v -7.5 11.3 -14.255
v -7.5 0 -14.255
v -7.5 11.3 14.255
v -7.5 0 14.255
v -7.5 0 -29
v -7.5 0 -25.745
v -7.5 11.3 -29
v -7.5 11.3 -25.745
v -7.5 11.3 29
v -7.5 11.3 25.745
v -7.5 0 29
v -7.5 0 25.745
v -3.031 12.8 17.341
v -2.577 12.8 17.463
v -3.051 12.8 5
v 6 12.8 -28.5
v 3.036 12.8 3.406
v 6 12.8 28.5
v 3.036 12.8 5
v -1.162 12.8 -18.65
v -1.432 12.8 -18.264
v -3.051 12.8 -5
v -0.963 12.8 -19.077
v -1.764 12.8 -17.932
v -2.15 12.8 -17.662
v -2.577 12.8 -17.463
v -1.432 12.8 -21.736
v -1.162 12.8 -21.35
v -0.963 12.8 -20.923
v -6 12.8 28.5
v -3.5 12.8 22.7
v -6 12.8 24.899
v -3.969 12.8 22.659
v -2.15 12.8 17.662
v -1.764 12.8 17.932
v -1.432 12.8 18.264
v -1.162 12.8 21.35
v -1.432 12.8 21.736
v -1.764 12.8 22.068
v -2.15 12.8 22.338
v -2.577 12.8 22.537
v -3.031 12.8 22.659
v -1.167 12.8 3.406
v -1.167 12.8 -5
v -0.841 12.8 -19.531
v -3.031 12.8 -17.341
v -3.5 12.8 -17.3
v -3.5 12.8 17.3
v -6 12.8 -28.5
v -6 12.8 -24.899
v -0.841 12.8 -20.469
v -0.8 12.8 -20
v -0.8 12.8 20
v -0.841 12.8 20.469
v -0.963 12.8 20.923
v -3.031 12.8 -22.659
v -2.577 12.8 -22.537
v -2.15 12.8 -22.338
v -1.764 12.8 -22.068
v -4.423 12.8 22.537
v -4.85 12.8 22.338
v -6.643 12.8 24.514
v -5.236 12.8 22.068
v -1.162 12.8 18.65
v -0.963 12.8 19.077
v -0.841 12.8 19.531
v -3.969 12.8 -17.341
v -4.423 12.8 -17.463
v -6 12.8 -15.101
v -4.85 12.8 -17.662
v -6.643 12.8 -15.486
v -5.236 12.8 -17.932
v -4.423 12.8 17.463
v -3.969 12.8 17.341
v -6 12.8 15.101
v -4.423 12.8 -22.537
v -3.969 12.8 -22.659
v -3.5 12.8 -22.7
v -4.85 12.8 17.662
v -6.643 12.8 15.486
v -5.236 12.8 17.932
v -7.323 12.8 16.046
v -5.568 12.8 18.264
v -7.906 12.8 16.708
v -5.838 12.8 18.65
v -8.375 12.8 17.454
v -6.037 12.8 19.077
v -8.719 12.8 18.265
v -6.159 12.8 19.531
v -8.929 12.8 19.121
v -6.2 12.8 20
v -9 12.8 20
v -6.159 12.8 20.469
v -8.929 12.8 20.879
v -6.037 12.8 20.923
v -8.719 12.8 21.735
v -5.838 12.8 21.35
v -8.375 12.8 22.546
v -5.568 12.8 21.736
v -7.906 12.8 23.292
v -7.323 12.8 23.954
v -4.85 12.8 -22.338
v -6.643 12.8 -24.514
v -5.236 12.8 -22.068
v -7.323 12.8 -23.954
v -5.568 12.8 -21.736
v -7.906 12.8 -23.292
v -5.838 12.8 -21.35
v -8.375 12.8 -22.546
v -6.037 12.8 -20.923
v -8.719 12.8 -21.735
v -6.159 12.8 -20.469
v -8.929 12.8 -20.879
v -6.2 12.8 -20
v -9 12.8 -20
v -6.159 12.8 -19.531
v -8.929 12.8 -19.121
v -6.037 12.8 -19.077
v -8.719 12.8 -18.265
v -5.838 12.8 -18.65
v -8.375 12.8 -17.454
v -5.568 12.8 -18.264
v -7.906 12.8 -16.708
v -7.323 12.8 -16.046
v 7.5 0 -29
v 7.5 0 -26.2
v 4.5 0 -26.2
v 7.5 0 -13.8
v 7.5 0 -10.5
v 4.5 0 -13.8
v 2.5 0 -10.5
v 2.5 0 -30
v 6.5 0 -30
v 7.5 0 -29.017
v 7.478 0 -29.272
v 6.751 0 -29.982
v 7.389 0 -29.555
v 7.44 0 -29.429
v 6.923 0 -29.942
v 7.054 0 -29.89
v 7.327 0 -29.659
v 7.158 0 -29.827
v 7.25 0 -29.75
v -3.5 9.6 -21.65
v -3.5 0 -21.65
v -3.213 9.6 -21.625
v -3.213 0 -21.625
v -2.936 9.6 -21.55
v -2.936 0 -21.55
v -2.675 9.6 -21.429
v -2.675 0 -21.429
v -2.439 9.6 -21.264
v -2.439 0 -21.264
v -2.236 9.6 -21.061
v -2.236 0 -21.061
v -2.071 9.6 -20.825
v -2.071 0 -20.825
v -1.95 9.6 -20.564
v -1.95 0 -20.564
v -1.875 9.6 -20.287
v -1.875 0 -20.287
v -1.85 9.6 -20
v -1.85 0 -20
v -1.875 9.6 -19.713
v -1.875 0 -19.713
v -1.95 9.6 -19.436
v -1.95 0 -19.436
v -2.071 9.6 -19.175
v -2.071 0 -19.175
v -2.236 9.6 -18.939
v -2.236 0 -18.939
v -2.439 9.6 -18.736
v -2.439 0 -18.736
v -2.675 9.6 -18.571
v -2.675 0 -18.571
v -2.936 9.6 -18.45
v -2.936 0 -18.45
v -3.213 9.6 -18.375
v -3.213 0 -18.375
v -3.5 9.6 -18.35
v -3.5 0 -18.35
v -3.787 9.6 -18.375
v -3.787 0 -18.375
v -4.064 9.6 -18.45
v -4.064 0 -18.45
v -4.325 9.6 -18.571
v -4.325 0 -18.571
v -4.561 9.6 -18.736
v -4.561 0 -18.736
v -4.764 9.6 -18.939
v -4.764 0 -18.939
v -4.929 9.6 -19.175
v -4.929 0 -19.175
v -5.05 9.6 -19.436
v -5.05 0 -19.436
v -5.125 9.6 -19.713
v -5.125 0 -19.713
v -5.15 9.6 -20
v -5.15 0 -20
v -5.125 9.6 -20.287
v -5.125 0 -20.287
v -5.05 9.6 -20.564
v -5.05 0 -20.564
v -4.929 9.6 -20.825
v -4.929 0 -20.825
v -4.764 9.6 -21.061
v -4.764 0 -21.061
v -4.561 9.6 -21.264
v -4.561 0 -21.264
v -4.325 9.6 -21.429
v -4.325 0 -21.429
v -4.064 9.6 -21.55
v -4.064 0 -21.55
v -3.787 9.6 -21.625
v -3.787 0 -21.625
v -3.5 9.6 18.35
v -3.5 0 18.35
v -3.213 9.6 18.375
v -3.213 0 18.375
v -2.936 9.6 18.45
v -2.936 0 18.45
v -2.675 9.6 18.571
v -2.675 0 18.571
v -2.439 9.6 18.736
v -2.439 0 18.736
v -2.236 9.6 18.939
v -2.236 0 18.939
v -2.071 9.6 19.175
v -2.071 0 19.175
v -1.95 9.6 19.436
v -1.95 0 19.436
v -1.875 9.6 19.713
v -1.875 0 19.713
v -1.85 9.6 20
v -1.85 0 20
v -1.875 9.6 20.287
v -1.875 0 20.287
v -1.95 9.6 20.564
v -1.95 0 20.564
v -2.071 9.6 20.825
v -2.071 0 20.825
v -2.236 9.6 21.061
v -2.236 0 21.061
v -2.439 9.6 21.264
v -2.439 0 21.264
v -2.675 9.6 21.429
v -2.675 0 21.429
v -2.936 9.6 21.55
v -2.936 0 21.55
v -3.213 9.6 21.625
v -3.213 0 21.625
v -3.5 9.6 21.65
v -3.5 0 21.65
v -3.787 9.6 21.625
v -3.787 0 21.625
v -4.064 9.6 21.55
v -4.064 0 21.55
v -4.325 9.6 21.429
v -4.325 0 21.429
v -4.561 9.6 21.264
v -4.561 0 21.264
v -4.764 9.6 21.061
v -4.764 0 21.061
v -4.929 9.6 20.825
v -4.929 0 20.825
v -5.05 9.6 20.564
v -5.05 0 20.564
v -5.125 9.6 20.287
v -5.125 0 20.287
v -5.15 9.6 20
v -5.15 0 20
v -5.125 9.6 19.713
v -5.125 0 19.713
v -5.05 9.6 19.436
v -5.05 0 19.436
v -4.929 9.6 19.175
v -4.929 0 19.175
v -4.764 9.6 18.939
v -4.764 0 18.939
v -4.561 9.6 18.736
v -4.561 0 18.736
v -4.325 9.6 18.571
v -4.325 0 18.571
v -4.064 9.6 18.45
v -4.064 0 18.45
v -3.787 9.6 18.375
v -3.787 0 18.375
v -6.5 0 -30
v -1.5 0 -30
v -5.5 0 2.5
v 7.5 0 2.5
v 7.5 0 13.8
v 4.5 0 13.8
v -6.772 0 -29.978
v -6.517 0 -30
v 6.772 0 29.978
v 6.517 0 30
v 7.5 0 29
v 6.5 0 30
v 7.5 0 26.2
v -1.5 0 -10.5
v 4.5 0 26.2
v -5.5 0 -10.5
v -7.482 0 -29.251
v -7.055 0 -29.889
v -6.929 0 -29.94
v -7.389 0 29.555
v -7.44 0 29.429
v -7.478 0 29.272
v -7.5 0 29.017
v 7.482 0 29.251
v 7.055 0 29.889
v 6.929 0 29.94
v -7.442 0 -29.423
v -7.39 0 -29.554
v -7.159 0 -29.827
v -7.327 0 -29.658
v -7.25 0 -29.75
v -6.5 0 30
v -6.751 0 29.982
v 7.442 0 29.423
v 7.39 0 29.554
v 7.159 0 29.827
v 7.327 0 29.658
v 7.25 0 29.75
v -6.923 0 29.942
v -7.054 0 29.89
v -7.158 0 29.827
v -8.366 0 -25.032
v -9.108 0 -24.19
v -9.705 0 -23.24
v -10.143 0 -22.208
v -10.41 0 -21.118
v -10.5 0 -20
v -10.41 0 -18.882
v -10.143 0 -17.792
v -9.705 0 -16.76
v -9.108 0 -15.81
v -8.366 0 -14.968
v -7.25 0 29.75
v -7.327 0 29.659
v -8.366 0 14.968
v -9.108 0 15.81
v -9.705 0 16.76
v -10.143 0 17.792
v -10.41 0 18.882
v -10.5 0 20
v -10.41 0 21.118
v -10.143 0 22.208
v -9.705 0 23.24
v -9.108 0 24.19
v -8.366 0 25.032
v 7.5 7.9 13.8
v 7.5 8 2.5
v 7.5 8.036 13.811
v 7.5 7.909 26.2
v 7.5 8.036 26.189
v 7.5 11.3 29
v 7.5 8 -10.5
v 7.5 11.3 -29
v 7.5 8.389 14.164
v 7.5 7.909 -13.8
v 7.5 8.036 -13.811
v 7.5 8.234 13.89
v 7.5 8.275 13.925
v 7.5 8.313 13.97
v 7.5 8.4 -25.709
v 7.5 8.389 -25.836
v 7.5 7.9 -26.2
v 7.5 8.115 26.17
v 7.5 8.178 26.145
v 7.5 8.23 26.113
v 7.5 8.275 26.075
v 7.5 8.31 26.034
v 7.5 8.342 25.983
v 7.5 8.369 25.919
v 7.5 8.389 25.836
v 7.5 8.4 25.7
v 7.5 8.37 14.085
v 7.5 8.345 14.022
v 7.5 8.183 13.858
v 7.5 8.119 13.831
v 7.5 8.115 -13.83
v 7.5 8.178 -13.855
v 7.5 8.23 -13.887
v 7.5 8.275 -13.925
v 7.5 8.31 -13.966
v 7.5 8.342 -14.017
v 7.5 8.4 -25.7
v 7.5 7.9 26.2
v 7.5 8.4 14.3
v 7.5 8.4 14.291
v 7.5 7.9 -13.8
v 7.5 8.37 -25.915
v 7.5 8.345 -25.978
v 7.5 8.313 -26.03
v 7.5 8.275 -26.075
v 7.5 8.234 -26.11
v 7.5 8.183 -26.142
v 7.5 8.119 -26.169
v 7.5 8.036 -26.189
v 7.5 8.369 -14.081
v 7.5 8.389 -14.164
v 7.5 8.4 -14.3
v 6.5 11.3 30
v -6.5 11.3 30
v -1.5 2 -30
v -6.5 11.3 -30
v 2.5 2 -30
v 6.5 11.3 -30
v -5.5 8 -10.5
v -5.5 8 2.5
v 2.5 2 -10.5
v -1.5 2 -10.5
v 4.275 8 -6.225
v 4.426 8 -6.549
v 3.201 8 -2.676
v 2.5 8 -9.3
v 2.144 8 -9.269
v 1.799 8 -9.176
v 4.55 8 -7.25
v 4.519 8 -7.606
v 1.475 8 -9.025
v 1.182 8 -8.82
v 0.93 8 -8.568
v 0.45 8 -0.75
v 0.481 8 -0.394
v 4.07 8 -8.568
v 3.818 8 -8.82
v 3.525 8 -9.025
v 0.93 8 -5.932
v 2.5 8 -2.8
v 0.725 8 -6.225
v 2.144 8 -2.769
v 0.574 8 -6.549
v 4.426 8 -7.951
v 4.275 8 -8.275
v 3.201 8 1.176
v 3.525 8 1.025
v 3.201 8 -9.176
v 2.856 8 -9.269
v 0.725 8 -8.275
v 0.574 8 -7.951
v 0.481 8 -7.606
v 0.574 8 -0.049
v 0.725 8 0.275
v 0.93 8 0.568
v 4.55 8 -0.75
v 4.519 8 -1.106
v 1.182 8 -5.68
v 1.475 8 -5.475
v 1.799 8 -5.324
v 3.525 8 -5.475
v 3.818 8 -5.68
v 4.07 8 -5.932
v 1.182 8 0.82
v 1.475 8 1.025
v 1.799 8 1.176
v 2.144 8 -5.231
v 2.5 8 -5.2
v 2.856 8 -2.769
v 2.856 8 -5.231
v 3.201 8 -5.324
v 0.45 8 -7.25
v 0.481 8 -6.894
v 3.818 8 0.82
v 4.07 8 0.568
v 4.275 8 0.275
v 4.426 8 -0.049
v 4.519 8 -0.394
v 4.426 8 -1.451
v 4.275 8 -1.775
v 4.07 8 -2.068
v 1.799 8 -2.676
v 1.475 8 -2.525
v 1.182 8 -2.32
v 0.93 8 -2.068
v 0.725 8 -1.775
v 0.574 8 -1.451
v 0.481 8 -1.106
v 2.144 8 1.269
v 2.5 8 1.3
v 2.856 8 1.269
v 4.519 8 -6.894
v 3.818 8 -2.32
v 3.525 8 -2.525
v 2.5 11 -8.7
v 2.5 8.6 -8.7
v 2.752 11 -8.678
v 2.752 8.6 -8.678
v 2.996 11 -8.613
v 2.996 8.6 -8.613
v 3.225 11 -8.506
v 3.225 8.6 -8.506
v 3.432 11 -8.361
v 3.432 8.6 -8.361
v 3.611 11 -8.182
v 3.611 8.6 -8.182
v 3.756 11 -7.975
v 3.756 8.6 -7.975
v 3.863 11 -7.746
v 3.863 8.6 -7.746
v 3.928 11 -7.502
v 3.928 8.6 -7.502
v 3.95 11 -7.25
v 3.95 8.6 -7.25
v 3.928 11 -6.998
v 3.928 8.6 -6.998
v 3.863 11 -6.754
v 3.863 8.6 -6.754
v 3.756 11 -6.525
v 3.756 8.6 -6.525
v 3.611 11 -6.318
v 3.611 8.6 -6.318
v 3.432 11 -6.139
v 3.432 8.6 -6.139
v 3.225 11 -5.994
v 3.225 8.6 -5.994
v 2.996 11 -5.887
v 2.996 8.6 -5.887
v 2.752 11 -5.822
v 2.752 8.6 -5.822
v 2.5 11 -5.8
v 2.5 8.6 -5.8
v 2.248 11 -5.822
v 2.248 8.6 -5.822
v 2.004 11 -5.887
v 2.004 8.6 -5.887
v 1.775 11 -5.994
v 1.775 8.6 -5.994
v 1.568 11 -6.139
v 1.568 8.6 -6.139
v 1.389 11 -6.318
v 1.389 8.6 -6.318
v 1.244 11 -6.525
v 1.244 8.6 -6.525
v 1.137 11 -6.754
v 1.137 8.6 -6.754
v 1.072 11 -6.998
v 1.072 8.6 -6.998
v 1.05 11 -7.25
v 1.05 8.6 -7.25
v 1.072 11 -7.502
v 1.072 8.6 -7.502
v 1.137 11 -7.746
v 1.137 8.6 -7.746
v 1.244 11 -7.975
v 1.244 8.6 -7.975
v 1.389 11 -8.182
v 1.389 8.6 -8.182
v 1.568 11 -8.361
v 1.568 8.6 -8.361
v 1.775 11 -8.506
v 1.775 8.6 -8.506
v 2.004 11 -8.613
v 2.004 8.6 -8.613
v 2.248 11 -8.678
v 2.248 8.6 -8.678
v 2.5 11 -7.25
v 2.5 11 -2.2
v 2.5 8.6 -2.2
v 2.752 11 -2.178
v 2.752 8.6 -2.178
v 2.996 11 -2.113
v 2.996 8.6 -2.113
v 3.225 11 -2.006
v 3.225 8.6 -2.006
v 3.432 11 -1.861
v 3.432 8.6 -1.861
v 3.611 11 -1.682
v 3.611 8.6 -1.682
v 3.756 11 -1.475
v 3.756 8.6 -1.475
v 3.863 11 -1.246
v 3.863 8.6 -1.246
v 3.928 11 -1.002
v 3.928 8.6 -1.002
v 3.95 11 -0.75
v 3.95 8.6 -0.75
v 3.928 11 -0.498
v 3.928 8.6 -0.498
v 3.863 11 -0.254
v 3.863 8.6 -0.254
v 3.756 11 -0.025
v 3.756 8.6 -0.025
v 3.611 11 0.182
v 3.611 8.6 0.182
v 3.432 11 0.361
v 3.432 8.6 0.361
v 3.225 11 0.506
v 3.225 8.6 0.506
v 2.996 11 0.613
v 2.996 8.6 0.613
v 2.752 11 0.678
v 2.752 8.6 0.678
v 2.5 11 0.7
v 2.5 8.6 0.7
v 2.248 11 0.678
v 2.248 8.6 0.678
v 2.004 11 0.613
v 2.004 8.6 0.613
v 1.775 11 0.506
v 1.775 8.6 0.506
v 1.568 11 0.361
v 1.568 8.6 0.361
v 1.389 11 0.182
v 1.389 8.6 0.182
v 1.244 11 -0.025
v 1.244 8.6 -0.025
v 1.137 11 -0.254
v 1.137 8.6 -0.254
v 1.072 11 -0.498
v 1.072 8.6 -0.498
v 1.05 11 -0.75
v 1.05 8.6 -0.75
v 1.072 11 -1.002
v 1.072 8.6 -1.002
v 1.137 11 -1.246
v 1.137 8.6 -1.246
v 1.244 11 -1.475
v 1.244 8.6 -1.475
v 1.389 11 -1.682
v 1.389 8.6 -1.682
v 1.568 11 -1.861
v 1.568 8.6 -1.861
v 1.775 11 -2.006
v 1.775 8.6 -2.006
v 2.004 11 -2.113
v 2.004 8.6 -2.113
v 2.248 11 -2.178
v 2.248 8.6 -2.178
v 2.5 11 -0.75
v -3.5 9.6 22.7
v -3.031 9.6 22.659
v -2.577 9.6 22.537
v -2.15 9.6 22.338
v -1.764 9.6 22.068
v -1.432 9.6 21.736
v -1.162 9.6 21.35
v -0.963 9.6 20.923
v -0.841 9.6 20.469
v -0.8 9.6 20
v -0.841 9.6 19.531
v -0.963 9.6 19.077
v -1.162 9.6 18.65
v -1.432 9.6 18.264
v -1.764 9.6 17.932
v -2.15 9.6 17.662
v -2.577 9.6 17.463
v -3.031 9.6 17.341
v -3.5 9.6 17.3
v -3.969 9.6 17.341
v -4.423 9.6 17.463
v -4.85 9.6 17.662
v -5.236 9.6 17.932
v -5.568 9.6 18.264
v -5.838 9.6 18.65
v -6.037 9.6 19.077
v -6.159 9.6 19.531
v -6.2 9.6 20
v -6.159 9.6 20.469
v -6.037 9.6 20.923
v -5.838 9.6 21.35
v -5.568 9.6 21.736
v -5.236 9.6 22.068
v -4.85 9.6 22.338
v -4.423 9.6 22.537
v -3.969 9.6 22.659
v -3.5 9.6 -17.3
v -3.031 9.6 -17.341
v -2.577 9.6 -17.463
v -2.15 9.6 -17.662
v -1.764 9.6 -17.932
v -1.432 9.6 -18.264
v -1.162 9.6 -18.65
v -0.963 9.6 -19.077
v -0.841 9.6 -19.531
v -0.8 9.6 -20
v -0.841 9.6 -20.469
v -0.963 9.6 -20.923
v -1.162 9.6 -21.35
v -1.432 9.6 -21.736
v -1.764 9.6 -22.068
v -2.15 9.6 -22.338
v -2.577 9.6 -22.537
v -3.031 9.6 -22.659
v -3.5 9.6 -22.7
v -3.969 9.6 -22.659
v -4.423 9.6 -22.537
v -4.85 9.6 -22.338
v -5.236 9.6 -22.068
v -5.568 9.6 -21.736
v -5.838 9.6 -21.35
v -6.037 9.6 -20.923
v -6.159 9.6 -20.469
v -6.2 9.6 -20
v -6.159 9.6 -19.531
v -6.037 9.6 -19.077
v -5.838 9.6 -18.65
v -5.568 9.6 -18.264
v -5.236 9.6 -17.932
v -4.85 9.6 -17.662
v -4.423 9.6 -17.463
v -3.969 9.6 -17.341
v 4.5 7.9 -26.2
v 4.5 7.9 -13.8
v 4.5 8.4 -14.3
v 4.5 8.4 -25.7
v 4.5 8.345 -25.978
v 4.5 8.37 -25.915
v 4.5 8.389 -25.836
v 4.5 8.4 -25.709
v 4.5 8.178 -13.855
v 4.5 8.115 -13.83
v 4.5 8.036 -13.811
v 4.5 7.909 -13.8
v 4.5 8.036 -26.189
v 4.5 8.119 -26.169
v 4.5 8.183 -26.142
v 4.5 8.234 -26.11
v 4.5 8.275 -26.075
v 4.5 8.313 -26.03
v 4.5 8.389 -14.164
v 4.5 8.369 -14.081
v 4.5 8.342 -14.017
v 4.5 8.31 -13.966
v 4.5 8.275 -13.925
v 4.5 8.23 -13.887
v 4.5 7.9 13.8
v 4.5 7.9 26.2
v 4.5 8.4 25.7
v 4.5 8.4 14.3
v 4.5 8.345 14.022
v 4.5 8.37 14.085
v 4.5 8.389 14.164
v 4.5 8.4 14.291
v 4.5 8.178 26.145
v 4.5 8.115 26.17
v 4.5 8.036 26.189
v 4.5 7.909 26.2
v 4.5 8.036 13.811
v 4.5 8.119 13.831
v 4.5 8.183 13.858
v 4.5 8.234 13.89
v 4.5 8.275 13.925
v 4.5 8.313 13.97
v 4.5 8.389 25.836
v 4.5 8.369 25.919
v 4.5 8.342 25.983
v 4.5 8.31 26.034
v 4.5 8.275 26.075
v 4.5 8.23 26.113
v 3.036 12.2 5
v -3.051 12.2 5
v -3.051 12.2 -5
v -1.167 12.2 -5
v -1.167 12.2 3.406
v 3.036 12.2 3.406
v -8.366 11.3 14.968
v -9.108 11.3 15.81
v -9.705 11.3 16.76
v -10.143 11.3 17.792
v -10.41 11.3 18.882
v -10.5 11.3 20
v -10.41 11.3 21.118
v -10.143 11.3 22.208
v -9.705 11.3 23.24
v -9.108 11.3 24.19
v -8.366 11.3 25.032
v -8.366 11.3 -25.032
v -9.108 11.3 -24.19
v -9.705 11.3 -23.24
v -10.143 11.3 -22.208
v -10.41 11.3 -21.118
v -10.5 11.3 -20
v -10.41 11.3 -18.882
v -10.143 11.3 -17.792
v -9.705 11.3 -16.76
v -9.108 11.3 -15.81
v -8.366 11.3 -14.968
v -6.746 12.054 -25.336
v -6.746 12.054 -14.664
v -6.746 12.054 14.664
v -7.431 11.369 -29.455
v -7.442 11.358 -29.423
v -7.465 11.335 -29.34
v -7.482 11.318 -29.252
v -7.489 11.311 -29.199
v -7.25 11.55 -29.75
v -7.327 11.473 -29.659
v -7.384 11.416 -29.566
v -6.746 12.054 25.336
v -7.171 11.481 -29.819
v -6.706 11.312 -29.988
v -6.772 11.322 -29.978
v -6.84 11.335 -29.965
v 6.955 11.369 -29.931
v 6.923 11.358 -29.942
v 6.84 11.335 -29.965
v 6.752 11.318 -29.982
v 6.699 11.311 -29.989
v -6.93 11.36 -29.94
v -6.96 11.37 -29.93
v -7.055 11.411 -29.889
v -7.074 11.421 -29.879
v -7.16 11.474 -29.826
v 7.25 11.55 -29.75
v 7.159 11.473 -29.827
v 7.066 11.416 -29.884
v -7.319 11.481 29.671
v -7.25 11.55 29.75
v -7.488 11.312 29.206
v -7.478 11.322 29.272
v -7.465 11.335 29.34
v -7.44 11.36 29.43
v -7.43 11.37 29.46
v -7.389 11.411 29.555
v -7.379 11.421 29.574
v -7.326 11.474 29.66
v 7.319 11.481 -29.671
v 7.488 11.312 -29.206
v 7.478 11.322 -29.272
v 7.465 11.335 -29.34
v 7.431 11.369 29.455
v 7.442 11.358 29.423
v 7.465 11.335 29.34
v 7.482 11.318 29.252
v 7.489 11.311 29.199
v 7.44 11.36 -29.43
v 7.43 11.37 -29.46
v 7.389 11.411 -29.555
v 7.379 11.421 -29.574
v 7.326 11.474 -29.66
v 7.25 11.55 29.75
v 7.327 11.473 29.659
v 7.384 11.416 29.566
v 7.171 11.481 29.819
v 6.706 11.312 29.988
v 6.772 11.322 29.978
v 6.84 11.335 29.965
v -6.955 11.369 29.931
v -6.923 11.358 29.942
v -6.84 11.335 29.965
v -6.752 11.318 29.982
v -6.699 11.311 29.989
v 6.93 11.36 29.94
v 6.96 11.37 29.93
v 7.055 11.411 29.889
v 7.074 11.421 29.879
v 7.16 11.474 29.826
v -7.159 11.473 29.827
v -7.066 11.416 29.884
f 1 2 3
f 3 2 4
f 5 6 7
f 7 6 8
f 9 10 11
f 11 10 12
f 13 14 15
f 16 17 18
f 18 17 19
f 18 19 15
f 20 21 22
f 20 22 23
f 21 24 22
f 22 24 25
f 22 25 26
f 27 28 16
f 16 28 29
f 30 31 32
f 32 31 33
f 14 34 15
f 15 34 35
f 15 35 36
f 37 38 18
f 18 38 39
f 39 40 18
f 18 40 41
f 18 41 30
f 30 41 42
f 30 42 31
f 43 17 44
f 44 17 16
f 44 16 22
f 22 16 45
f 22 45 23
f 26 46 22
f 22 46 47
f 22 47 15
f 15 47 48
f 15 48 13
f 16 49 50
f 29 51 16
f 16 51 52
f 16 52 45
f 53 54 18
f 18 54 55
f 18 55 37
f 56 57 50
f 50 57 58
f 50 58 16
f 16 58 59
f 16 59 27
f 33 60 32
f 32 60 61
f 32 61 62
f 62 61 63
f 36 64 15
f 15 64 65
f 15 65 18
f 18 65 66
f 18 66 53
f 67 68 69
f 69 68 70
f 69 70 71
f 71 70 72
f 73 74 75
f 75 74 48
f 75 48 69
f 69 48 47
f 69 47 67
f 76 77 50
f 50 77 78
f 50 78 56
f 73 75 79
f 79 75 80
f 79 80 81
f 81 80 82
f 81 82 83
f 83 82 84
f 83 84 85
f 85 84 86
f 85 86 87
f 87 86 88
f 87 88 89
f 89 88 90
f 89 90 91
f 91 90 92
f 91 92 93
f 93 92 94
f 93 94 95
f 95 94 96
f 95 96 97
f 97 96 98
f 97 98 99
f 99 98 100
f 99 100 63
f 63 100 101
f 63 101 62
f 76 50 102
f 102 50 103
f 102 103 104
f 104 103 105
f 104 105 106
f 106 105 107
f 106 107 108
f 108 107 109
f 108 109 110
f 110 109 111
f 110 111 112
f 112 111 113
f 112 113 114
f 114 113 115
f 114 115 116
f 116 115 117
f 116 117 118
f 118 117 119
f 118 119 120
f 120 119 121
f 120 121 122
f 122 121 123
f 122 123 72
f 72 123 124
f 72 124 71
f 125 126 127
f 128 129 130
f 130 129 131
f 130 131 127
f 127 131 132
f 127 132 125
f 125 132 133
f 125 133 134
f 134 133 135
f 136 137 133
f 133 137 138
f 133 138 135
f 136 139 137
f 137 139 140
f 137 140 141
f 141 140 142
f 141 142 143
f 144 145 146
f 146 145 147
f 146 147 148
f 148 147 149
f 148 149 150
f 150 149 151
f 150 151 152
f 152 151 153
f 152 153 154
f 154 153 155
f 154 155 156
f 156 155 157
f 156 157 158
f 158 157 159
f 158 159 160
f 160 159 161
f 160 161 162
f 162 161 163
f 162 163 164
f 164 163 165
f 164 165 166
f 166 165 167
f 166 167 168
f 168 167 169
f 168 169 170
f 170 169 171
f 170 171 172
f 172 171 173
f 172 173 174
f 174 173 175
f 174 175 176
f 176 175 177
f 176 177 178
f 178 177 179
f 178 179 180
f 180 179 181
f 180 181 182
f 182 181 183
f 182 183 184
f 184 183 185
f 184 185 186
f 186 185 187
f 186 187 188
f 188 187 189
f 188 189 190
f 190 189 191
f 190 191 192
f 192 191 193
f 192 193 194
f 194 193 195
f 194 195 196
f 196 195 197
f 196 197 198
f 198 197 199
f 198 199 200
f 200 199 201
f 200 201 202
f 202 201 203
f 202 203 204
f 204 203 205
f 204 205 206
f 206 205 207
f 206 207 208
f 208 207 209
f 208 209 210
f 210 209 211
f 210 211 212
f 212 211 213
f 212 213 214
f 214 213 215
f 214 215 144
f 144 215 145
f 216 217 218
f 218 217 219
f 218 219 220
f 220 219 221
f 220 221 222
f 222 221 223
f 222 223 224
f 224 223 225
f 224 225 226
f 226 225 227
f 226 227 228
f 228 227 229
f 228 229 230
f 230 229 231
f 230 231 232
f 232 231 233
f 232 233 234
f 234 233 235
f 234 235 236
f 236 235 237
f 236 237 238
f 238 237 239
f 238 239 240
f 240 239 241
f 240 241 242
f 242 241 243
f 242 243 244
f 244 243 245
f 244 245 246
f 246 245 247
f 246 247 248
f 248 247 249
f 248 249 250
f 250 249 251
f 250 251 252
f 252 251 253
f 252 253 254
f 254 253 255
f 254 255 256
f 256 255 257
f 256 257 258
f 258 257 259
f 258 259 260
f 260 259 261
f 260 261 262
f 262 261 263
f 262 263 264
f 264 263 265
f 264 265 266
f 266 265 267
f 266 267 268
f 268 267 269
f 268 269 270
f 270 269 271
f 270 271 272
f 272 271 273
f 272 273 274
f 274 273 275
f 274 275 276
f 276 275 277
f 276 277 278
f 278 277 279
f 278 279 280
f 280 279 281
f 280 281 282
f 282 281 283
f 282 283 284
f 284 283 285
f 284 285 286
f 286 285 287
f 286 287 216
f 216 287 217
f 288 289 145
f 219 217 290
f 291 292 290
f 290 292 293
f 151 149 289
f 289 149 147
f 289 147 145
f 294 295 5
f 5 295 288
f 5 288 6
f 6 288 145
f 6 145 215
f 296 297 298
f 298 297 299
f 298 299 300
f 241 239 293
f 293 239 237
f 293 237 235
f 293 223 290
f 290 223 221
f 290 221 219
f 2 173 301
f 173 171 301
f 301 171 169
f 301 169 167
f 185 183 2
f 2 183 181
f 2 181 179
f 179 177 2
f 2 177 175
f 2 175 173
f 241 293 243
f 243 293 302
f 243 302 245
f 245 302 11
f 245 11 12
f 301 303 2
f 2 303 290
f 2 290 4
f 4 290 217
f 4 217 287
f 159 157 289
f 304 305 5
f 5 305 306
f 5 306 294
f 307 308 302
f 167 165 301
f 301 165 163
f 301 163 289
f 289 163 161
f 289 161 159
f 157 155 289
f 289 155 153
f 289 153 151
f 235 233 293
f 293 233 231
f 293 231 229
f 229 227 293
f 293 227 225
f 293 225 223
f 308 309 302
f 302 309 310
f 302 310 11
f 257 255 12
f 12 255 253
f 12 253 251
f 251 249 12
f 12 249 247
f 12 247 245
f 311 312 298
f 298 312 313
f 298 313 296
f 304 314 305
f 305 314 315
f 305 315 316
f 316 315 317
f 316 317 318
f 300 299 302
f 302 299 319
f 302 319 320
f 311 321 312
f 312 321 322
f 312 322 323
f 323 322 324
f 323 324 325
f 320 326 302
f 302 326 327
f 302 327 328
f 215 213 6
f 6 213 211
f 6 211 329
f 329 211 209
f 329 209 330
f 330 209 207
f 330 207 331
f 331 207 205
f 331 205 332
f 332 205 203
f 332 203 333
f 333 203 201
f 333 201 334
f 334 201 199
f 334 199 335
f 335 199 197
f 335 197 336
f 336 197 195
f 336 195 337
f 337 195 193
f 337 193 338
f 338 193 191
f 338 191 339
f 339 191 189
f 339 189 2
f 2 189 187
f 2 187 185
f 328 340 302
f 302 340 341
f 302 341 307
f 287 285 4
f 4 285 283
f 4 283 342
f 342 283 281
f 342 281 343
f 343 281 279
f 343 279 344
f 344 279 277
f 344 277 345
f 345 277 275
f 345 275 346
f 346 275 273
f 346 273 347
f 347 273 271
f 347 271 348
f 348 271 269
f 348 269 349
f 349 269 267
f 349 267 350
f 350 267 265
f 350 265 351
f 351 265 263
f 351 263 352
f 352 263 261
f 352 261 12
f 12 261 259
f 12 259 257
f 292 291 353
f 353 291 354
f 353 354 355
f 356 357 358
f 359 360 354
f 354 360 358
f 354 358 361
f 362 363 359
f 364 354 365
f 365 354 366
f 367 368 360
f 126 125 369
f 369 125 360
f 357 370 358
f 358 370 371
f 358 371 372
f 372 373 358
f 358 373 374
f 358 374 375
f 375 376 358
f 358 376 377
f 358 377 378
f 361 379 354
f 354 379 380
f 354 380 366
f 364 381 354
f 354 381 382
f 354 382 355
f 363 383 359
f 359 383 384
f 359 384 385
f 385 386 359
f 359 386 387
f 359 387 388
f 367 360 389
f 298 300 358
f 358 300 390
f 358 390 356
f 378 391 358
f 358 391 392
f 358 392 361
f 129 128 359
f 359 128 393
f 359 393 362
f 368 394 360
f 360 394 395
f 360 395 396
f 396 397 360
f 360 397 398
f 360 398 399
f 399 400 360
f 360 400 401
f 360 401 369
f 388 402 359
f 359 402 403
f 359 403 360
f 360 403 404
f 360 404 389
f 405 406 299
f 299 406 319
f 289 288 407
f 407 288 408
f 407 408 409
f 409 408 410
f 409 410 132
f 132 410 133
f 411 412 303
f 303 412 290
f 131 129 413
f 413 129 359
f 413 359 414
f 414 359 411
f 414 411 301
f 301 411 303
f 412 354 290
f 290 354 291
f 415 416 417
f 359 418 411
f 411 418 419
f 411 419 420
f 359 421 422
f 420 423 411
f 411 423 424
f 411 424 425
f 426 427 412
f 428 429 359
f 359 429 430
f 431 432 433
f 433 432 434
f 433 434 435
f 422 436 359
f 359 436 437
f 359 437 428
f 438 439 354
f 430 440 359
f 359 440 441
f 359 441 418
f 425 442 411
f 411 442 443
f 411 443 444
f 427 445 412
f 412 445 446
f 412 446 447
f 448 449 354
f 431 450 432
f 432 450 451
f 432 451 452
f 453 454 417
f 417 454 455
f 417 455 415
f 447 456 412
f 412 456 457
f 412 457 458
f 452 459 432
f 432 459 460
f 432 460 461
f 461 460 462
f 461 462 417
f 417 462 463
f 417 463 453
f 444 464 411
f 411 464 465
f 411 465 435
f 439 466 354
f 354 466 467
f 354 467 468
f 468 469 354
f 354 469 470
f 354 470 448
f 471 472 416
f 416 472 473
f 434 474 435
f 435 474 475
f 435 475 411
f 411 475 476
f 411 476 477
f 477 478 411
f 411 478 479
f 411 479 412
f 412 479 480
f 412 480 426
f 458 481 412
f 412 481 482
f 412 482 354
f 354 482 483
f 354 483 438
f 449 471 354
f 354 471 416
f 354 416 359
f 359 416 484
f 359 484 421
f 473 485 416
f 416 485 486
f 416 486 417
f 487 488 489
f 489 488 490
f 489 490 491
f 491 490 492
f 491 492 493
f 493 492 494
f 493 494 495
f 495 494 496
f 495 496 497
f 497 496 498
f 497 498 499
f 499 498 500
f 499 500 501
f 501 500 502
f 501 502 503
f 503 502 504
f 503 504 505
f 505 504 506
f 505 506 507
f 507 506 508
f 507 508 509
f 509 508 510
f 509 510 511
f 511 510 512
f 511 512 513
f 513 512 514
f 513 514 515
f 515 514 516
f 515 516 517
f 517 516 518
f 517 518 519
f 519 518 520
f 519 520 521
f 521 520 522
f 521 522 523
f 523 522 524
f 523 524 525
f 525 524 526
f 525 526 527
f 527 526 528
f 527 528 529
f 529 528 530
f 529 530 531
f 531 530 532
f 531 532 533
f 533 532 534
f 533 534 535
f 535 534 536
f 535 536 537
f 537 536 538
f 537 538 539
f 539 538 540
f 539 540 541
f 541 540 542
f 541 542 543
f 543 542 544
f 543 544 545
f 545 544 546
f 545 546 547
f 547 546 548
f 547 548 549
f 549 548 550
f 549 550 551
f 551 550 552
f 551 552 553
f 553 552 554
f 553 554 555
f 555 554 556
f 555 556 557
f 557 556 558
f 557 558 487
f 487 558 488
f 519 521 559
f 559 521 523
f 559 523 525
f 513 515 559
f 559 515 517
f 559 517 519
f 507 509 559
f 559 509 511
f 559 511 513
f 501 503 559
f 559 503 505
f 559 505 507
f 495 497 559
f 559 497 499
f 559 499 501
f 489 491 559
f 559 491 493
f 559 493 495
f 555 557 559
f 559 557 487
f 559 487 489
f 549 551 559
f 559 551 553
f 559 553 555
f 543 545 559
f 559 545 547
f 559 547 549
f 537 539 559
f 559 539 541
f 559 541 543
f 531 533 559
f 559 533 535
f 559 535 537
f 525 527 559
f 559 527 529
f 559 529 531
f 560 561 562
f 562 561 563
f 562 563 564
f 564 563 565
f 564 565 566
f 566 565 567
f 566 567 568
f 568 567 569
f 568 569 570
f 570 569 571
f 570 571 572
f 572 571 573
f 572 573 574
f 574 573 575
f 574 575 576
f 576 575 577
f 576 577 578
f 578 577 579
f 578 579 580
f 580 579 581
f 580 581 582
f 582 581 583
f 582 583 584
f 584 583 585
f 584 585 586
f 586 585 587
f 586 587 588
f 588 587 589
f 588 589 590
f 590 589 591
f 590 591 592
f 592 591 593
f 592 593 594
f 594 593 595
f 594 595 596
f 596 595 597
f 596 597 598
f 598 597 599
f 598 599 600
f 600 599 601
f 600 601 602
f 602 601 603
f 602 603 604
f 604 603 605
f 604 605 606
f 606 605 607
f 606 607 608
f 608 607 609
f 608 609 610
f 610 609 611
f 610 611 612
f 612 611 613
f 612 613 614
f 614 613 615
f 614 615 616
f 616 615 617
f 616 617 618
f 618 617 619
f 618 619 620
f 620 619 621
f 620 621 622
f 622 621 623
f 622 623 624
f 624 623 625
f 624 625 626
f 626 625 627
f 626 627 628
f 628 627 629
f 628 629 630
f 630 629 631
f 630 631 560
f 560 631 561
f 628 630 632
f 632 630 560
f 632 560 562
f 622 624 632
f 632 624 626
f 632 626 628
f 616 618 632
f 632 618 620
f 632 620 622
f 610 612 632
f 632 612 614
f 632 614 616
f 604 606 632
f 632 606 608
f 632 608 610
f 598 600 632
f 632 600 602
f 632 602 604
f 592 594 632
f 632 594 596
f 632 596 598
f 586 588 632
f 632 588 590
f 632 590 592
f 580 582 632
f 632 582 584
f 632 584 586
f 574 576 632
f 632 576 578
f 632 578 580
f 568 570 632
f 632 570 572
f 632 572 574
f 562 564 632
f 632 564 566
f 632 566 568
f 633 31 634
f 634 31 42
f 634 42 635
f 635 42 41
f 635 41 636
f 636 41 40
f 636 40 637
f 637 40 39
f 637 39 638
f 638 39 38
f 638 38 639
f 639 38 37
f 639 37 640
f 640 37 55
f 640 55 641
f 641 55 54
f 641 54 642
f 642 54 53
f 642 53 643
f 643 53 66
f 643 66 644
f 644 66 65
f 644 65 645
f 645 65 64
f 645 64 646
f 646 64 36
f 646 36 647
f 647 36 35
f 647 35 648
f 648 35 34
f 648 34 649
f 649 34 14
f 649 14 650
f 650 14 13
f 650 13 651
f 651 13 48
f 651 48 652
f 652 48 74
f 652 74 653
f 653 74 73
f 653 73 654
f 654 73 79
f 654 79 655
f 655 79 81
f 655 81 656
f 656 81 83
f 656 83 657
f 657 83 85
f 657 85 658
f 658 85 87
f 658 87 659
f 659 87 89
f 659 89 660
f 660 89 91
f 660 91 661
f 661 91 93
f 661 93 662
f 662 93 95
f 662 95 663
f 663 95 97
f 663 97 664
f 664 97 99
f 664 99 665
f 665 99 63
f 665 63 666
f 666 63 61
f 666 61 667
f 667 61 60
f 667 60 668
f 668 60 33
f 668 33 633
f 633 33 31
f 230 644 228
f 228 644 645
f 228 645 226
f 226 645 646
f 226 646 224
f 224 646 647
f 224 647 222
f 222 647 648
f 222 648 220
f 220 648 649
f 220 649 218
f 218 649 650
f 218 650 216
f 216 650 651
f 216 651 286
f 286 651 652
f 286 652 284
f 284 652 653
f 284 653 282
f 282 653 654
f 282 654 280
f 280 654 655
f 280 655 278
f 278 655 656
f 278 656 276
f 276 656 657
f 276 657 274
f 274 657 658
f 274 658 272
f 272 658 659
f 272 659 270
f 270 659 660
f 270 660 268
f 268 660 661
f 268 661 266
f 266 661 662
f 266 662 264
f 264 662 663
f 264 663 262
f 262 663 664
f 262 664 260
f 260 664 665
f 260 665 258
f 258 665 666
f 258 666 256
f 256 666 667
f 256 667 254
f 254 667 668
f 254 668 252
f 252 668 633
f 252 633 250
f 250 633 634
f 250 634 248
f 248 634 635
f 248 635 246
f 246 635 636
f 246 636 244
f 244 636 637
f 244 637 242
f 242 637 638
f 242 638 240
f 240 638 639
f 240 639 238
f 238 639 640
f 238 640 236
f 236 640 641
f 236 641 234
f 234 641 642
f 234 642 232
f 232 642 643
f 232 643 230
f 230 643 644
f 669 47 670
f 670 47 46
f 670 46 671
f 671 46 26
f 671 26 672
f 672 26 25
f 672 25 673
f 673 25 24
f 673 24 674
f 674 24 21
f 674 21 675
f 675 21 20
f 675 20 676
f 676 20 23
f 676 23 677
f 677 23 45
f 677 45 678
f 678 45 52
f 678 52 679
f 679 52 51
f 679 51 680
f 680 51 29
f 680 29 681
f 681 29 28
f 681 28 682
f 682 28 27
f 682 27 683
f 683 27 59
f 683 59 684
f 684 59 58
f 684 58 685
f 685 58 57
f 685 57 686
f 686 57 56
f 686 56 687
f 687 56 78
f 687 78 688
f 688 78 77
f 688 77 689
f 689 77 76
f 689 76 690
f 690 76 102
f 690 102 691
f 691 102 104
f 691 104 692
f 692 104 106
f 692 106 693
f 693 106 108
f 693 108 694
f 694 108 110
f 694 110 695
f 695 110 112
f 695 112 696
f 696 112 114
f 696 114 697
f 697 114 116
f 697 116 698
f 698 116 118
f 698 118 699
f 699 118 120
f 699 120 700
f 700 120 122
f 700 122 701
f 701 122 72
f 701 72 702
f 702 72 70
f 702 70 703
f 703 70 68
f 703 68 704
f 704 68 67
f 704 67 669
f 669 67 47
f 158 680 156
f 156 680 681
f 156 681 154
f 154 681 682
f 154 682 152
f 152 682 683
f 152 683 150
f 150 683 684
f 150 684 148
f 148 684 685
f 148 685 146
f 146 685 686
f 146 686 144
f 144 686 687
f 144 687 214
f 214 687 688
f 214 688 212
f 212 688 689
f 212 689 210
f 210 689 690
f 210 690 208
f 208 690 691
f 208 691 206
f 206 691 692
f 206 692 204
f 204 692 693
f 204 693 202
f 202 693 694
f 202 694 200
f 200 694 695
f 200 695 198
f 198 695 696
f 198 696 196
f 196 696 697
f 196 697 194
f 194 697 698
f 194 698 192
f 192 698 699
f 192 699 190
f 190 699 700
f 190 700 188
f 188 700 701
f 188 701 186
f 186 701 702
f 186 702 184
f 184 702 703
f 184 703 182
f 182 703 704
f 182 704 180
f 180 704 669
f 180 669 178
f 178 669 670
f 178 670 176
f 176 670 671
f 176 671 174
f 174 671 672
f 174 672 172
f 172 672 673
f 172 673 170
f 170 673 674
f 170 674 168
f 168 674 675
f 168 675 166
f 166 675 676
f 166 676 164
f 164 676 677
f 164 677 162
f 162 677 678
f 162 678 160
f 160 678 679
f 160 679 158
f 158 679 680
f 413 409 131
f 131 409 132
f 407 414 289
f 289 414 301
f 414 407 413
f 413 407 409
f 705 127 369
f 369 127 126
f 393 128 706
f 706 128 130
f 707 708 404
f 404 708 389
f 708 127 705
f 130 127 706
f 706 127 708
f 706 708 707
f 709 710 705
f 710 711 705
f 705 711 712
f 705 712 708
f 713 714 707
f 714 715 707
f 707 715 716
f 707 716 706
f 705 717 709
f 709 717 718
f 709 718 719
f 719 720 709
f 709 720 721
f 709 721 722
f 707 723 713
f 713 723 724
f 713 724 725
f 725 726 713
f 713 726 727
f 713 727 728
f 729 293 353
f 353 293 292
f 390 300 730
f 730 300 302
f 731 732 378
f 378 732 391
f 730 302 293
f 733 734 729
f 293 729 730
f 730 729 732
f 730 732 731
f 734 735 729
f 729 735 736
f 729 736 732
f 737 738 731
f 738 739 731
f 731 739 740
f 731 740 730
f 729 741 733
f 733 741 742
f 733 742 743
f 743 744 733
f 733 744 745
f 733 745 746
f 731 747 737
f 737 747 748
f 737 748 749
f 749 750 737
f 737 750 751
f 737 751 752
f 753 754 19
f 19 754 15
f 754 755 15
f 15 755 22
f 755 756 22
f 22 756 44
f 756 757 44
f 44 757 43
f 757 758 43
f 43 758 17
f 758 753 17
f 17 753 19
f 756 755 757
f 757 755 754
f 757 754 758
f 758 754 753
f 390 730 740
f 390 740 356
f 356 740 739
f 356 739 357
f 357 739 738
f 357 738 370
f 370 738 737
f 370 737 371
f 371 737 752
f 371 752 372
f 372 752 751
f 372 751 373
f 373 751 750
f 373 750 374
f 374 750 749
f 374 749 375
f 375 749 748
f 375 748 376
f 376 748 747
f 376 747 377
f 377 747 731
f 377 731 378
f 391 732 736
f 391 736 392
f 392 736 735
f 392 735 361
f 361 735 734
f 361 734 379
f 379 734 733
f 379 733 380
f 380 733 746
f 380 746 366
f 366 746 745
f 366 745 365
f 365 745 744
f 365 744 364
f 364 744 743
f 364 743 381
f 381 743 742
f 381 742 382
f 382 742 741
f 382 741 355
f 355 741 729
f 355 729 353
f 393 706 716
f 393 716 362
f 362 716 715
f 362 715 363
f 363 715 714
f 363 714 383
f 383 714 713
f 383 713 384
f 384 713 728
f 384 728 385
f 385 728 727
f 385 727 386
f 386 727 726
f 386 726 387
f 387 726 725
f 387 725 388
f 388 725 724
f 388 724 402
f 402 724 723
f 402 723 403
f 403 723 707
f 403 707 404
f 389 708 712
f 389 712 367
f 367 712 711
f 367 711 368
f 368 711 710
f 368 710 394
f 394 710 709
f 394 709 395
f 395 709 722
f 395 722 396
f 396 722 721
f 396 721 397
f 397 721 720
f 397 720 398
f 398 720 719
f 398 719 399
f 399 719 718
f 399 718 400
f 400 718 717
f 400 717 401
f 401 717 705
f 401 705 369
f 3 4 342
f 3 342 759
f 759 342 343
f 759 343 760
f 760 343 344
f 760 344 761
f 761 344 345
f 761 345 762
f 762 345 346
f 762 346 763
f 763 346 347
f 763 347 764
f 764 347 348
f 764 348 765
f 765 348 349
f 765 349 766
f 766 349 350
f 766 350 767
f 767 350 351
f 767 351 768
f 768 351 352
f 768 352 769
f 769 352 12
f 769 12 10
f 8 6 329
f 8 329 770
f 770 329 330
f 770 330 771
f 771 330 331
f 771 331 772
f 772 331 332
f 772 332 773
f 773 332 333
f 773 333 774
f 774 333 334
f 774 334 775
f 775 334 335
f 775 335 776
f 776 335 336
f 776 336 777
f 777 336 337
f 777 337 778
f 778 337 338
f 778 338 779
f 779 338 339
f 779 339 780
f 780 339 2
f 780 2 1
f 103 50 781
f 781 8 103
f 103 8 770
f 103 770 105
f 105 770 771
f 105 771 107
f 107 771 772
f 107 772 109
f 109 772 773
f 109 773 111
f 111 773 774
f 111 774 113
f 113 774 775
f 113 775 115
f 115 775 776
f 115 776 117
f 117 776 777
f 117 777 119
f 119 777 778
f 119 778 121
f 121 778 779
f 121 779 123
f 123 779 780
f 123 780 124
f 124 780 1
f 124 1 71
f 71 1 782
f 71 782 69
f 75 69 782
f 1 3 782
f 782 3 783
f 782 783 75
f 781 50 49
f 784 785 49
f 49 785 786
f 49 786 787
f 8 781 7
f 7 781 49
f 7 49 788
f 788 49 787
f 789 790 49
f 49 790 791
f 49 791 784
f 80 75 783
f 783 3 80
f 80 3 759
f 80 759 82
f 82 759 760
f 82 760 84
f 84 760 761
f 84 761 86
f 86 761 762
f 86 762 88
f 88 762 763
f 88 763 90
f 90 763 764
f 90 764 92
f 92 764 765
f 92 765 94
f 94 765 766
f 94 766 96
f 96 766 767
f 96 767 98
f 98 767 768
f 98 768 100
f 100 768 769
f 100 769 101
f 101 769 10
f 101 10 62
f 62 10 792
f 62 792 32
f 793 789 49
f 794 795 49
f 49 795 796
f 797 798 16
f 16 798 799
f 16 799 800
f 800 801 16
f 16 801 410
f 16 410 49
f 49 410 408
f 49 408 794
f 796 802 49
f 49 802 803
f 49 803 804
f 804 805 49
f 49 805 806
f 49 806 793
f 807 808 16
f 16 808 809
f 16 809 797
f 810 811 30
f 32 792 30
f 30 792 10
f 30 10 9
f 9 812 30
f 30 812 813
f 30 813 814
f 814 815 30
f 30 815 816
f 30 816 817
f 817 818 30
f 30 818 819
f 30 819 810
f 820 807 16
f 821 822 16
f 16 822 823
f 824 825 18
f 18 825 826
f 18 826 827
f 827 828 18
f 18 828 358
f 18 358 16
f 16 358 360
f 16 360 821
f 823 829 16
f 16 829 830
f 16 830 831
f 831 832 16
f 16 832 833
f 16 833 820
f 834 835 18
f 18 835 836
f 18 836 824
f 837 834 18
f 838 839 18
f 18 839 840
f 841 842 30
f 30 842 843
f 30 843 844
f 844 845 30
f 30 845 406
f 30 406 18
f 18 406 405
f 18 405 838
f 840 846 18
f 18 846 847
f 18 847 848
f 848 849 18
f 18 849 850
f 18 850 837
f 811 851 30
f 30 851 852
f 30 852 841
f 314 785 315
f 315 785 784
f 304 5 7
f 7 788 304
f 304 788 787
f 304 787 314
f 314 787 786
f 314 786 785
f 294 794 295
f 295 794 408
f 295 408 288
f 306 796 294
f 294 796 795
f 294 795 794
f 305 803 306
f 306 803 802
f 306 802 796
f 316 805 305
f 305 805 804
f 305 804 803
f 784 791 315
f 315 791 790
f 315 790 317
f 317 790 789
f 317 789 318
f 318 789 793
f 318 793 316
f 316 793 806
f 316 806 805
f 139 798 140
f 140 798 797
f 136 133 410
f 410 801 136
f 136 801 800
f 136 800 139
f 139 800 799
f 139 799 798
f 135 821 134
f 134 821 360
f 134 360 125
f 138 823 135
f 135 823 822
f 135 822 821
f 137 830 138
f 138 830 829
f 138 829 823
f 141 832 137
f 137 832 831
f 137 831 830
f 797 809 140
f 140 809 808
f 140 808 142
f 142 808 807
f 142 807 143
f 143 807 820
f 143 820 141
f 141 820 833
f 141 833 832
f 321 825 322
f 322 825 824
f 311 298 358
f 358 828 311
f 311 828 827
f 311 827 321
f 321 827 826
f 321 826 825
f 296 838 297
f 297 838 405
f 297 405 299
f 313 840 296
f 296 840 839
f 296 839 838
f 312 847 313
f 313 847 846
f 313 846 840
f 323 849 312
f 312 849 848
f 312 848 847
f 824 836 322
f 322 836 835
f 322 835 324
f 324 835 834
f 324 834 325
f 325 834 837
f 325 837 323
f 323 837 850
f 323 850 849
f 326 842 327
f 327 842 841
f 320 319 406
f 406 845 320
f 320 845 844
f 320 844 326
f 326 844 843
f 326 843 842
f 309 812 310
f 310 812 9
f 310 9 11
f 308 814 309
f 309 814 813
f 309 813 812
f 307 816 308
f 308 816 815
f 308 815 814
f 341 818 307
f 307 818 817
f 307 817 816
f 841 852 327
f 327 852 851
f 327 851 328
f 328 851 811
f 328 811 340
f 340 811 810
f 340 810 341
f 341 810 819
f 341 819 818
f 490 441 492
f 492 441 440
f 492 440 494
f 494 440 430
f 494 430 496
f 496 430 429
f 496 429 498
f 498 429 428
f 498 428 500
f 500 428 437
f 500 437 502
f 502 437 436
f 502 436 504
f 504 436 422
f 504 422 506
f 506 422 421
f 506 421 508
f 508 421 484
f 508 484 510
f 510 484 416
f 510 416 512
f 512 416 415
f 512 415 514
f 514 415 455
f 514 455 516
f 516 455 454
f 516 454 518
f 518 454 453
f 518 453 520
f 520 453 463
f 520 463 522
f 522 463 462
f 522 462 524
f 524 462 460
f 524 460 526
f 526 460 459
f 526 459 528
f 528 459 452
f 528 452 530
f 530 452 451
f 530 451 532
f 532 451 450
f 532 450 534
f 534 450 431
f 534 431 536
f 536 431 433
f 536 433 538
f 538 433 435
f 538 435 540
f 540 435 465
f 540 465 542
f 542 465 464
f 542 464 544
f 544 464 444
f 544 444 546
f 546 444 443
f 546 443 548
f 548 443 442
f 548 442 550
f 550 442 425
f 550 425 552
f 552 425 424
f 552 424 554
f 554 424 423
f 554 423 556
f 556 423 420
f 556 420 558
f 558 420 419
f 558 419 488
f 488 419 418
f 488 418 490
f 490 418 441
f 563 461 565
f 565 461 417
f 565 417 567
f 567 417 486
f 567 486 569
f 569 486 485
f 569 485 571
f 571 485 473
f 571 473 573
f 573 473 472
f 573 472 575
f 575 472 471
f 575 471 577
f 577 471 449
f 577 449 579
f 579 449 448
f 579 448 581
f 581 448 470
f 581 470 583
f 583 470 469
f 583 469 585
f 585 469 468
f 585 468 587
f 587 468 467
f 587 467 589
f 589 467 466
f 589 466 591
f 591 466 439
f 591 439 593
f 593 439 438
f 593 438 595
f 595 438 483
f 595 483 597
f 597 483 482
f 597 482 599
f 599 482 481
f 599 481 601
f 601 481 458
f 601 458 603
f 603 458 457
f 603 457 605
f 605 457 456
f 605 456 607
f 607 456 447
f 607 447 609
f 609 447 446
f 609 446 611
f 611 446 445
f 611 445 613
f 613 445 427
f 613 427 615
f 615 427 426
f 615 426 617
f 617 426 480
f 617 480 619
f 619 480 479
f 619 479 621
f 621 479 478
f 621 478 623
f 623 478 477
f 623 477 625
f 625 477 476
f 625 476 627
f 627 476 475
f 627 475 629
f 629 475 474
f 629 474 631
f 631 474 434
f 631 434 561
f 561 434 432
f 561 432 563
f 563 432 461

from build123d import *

# Parameters (mm, degrees)
SKETCH1_W               = 15
SKETCH1_H               = 60
SKETCH1_R               = 1.65
BOSS_EXTRUDE1_DEPTH     = 12.8
CUT_EXTRUDE3_DEPTH      = 34.467745667
CUT_EXTRUDE3_DEPTH_BACK = 8
SKETCH5_W               = 13
SKETCH5_H               = 13
SKETCH6_R               = 1.45
CUT_EXTRUDE4_DEPTH      = 3
SKETCH8_R               = 2.7
CUT_EXTRUDE6_DEPTH      = 3.2
SKETCH9_W               = 4
SKETCH9_H               = 19.5
CUT_EXTRUDE7_DEPTH      = 2
SKETCH10_W              = 12.4
SKETCH10_H              = 8.4
CUT_EXTRUDE8_DEPTH      = 3
CUT_EXTRUDE9_DEPTH      = 0.6
FILLET1_SIZE            = 0.5
BOSS_EXTRUDE2_DEPTH     = 12.8
CHAMFER2_SIZE           = 1.5
FILLET3_SIZE            = 1
CHAMFER3_SIZE           = 0.6


with BuildPart() as part:
    # Sketch1 → Boss-Extrude1 (new body)
    with BuildSketch(Plane(origin=(0, 0, 0), x_dir=(1, 0, 0), z_dir=(0, 1, 0))):
        Rectangle(SKETCH1_W, SKETCH1_H)
        with Locations(Location((-3.5, 20, 0), (0, 0, 270))):
            Circle(SKETCH1_R, mode=Mode.SUBTRACT)
        with Locations(Location((-3.5, -20, 0), (0, 0, 270))):
            Circle(SKETCH1_R, mode=Mode.SUBTRACT)
    extrude(amount=BOSS_EXTRUDE1_DEPTH)

    # Sketch5 → Cut-Extrude3 (cut, two sides: drawn at the far end of the back side and taken through both)
    with BuildSketch(Plane.XZ.offset(-CUT_EXTRUDE3_DEPTH_BACK)):
        with Locations((1, -4)):
            Rectangle(SKETCH5_W, SKETCH5_H)
    extrude(amount=CUT_EXTRUDE3_DEPTH + CUT_EXTRUDE3_DEPTH_BACK, mode=Mode.SUBTRACT)

    # Sketch6 → Cut-Extrude4 (cut)
    with BuildSketch(Plane.XZ.offset(-8)):
        with Locations(Location((2.5, -0.75, 0), (0, 0, 270))):
            Circle(SKETCH6_R)
        with Locations(Location((2.5, -7.25, 0), (0, 0, 90))):
            Circle(SKETCH6_R)
    extrude(amount=-CUT_EXTRUDE4_DEPTH, mode=Mode.SUBTRACT)

    # Sketch8 → Cut-Extrude6 (cut)
    with BuildSketch(Plane(origin=(0, 12.8, 0), x_dir=(1, 0, 0), z_dir=(0, 1, 0))):
        with Locations(Location((-3.5, 20, 0), (0, 0, 270))):
            Circle(SKETCH8_R)
        with Locations(Location((-3.5, -20, 0), (0, 0, 270))):
            Circle(SKETCH8_R)
    extrude(amount=-CUT_EXTRUDE6_DEPTH, mode=Mode.SUBTRACT)

    # Sketch9 → Cut-Extrude7 (cut)
    with BuildSketch(Plane.XZ):
        with Locations((0.5, -20.25)):
            Rectangle(SKETCH9_W, SKETCH9_H)
    extrude(amount=-CUT_EXTRUDE7_DEPTH, mode=Mode.SUBTRACT)

    # Sketch10 → Cut-Extrude8 (cut)
    with BuildSketch(Plane(origin=(7.5, 0, 0), x_dir=(0, 0, -1), z_dir=(1, 0, 0))):
        with Locations((-20, 4.2)):
            Rectangle(SKETCH10_W, SKETCH10_H)
        with Locations((20, 4.2)):
            Rectangle(SKETCH10_W, SKETCH10_H)
    extrude(amount=-CUT_EXTRUDE8_DEPTH, mode=Mode.SUBTRACT)

    # Sketch11 → Cut-Extrude9 (cut)
    with BuildSketch(Plane(origin=(0, 12.8, 0), x_dir=(1, 0, 0), z_dir=(0, 1, 0))):
        Polygon((-3.050724638, -5), (-3.050724638, 5), (-1.166666667, 5), (-1.166666667, -3.405797101), (3.036231884, -3.405797101), (3.036231884, -5), align=None)
    extrude(amount=-CUT_EXTRUDE9_DEPTH, mode=Mode.SUBTRACT)

    # Fillet1
    # a fillet whose section is not a circle: 0.5 mm, written as the material it adds along each edge
    with BuildSketch(Plane(origin=(7.5, 8.4, 26.2), x_dir=(0, 0, -1), z_dir=(-1, 0, 0)), Plane(origin=(7.5, 8.4, 13.8), x_dir=(0, -1, 0), z_dir=(-1, 0, 0)), Plane(origin=(7.5, 8.4, -13.8), x_dir=(0, 0, -1), z_dir=(-1, 0, 0)), Plane(origin=(7.5, 8.4, -26.2), x_dir=(0, -1, 0), z_dir=(-1, 0, 0))) as fillet1_piece_1:
        with BuildLine():
            Bezier((FILLET1_SIZE, 0), (0, 0), (0, FILLET1_SIZE), weights=[1, 1, 1])
            Line((0, FILLET1_SIZE), (0, 0))
            Line((0, 0), (FILLET1_SIZE, 0))
        make_face()
    extrude(amount=4.25)

    # Sketch12 → Boss-Extrude2 (add)
    with BuildSketch(Plane(origin=(0, 0, 0), x_dir=(1, 0, 0), z_dir=(0, 1, 0))):
        with BuildLine():
            Line((-7.5, 25.744562647), (-7.5, 14.255437353))
            ThreePointArc((-7.5, 14.255437353), (-10.5, 20), (-7.5, 25.744562647))
        make_face()
        with BuildLine():
            Line((-7.5, -25.744562647), (-7.5, -14.255437353))
            ThreePointArc((-7.5, -14.255437353), (-10.5, -20), (-7.5, -25.744562647))
        make_face()
    extrude(amount=BOSS_EXTRUDE2_DEPTH)

    # Chamfer2
    chamfer2_edges = [part.edges().sort_by_distance(p)[0] for p in [
        (7.5, 12.8, 0),
        (-7.5, 12.8, 0),
        (0, 12.8, -30),
        (-7.5, 12.8, 27.872281323),
        (-10.5, 12.8, -20),
        (-10.5, 12.8, 20),
        (-7.5, 12.8, -27.872281323),
        (0, 12.8, 30),
    ]]
    chamfer(chamfer2_edges, length=CHAMFER2_SIZE)

    # Fillet3
    # a fillet whose section is not a circle: 1 mm, written as the material it takes off along each edge
    with BuildSketch(Plane(origin=(-7.5, -2.5, -30), x_dir=(1, 0, 0), z_dir=(0, 1, 0)), Plane(origin=(7.5, -2.5, -30), x_dir=(0, 0, 1), z_dir=(0, 1, 0))) as fillet3_piece_1:
        with BuildLine():
            Bezier((FILLET3_SIZE, 0), (0, 0), (0, -FILLET3_SIZE), weights=[1, 1, 1])
            Line((0, -FILLET3_SIZE), (0, 0))
            Line((0, 0), (FILLET3_SIZE, 0))
        make_face()
    extrude(amount=16.3, mode=Mode.SUBTRACT)
    with BuildSketch(Plane(origin=(7.5, -2.5, 30), x_dir=(0, 0, -1), z_dir=(0, 1, 0)), Plane(origin=(-7.5, -2.5, 30), x_dir=(1, 0, 0), z_dir=(0, 1, 0))) as fillet3_piece_2:
        with BuildLine():
            Bezier((FILLET3_SIZE, 0), (0, 0), (0, FILLET3_SIZE), weights=[1, 1, 1])
            Line((0, FILLET3_SIZE), (0, 0))
            Line((0, 0), (FILLET3_SIZE, 0))
        make_face()
    extrude(amount=16.3, mode=Mode.SUBTRACT)

    # Chamfer3
    chamfer3_edges = [part.edges().sort_by_distance(p)[0] for p in [
        (2.5, 8, 0.7),
        (2.5, 8, -8.7),
    ]]
    chamfer(chamfer3_edges, length=CHAMFER3_SIZE)


solid = part.part
